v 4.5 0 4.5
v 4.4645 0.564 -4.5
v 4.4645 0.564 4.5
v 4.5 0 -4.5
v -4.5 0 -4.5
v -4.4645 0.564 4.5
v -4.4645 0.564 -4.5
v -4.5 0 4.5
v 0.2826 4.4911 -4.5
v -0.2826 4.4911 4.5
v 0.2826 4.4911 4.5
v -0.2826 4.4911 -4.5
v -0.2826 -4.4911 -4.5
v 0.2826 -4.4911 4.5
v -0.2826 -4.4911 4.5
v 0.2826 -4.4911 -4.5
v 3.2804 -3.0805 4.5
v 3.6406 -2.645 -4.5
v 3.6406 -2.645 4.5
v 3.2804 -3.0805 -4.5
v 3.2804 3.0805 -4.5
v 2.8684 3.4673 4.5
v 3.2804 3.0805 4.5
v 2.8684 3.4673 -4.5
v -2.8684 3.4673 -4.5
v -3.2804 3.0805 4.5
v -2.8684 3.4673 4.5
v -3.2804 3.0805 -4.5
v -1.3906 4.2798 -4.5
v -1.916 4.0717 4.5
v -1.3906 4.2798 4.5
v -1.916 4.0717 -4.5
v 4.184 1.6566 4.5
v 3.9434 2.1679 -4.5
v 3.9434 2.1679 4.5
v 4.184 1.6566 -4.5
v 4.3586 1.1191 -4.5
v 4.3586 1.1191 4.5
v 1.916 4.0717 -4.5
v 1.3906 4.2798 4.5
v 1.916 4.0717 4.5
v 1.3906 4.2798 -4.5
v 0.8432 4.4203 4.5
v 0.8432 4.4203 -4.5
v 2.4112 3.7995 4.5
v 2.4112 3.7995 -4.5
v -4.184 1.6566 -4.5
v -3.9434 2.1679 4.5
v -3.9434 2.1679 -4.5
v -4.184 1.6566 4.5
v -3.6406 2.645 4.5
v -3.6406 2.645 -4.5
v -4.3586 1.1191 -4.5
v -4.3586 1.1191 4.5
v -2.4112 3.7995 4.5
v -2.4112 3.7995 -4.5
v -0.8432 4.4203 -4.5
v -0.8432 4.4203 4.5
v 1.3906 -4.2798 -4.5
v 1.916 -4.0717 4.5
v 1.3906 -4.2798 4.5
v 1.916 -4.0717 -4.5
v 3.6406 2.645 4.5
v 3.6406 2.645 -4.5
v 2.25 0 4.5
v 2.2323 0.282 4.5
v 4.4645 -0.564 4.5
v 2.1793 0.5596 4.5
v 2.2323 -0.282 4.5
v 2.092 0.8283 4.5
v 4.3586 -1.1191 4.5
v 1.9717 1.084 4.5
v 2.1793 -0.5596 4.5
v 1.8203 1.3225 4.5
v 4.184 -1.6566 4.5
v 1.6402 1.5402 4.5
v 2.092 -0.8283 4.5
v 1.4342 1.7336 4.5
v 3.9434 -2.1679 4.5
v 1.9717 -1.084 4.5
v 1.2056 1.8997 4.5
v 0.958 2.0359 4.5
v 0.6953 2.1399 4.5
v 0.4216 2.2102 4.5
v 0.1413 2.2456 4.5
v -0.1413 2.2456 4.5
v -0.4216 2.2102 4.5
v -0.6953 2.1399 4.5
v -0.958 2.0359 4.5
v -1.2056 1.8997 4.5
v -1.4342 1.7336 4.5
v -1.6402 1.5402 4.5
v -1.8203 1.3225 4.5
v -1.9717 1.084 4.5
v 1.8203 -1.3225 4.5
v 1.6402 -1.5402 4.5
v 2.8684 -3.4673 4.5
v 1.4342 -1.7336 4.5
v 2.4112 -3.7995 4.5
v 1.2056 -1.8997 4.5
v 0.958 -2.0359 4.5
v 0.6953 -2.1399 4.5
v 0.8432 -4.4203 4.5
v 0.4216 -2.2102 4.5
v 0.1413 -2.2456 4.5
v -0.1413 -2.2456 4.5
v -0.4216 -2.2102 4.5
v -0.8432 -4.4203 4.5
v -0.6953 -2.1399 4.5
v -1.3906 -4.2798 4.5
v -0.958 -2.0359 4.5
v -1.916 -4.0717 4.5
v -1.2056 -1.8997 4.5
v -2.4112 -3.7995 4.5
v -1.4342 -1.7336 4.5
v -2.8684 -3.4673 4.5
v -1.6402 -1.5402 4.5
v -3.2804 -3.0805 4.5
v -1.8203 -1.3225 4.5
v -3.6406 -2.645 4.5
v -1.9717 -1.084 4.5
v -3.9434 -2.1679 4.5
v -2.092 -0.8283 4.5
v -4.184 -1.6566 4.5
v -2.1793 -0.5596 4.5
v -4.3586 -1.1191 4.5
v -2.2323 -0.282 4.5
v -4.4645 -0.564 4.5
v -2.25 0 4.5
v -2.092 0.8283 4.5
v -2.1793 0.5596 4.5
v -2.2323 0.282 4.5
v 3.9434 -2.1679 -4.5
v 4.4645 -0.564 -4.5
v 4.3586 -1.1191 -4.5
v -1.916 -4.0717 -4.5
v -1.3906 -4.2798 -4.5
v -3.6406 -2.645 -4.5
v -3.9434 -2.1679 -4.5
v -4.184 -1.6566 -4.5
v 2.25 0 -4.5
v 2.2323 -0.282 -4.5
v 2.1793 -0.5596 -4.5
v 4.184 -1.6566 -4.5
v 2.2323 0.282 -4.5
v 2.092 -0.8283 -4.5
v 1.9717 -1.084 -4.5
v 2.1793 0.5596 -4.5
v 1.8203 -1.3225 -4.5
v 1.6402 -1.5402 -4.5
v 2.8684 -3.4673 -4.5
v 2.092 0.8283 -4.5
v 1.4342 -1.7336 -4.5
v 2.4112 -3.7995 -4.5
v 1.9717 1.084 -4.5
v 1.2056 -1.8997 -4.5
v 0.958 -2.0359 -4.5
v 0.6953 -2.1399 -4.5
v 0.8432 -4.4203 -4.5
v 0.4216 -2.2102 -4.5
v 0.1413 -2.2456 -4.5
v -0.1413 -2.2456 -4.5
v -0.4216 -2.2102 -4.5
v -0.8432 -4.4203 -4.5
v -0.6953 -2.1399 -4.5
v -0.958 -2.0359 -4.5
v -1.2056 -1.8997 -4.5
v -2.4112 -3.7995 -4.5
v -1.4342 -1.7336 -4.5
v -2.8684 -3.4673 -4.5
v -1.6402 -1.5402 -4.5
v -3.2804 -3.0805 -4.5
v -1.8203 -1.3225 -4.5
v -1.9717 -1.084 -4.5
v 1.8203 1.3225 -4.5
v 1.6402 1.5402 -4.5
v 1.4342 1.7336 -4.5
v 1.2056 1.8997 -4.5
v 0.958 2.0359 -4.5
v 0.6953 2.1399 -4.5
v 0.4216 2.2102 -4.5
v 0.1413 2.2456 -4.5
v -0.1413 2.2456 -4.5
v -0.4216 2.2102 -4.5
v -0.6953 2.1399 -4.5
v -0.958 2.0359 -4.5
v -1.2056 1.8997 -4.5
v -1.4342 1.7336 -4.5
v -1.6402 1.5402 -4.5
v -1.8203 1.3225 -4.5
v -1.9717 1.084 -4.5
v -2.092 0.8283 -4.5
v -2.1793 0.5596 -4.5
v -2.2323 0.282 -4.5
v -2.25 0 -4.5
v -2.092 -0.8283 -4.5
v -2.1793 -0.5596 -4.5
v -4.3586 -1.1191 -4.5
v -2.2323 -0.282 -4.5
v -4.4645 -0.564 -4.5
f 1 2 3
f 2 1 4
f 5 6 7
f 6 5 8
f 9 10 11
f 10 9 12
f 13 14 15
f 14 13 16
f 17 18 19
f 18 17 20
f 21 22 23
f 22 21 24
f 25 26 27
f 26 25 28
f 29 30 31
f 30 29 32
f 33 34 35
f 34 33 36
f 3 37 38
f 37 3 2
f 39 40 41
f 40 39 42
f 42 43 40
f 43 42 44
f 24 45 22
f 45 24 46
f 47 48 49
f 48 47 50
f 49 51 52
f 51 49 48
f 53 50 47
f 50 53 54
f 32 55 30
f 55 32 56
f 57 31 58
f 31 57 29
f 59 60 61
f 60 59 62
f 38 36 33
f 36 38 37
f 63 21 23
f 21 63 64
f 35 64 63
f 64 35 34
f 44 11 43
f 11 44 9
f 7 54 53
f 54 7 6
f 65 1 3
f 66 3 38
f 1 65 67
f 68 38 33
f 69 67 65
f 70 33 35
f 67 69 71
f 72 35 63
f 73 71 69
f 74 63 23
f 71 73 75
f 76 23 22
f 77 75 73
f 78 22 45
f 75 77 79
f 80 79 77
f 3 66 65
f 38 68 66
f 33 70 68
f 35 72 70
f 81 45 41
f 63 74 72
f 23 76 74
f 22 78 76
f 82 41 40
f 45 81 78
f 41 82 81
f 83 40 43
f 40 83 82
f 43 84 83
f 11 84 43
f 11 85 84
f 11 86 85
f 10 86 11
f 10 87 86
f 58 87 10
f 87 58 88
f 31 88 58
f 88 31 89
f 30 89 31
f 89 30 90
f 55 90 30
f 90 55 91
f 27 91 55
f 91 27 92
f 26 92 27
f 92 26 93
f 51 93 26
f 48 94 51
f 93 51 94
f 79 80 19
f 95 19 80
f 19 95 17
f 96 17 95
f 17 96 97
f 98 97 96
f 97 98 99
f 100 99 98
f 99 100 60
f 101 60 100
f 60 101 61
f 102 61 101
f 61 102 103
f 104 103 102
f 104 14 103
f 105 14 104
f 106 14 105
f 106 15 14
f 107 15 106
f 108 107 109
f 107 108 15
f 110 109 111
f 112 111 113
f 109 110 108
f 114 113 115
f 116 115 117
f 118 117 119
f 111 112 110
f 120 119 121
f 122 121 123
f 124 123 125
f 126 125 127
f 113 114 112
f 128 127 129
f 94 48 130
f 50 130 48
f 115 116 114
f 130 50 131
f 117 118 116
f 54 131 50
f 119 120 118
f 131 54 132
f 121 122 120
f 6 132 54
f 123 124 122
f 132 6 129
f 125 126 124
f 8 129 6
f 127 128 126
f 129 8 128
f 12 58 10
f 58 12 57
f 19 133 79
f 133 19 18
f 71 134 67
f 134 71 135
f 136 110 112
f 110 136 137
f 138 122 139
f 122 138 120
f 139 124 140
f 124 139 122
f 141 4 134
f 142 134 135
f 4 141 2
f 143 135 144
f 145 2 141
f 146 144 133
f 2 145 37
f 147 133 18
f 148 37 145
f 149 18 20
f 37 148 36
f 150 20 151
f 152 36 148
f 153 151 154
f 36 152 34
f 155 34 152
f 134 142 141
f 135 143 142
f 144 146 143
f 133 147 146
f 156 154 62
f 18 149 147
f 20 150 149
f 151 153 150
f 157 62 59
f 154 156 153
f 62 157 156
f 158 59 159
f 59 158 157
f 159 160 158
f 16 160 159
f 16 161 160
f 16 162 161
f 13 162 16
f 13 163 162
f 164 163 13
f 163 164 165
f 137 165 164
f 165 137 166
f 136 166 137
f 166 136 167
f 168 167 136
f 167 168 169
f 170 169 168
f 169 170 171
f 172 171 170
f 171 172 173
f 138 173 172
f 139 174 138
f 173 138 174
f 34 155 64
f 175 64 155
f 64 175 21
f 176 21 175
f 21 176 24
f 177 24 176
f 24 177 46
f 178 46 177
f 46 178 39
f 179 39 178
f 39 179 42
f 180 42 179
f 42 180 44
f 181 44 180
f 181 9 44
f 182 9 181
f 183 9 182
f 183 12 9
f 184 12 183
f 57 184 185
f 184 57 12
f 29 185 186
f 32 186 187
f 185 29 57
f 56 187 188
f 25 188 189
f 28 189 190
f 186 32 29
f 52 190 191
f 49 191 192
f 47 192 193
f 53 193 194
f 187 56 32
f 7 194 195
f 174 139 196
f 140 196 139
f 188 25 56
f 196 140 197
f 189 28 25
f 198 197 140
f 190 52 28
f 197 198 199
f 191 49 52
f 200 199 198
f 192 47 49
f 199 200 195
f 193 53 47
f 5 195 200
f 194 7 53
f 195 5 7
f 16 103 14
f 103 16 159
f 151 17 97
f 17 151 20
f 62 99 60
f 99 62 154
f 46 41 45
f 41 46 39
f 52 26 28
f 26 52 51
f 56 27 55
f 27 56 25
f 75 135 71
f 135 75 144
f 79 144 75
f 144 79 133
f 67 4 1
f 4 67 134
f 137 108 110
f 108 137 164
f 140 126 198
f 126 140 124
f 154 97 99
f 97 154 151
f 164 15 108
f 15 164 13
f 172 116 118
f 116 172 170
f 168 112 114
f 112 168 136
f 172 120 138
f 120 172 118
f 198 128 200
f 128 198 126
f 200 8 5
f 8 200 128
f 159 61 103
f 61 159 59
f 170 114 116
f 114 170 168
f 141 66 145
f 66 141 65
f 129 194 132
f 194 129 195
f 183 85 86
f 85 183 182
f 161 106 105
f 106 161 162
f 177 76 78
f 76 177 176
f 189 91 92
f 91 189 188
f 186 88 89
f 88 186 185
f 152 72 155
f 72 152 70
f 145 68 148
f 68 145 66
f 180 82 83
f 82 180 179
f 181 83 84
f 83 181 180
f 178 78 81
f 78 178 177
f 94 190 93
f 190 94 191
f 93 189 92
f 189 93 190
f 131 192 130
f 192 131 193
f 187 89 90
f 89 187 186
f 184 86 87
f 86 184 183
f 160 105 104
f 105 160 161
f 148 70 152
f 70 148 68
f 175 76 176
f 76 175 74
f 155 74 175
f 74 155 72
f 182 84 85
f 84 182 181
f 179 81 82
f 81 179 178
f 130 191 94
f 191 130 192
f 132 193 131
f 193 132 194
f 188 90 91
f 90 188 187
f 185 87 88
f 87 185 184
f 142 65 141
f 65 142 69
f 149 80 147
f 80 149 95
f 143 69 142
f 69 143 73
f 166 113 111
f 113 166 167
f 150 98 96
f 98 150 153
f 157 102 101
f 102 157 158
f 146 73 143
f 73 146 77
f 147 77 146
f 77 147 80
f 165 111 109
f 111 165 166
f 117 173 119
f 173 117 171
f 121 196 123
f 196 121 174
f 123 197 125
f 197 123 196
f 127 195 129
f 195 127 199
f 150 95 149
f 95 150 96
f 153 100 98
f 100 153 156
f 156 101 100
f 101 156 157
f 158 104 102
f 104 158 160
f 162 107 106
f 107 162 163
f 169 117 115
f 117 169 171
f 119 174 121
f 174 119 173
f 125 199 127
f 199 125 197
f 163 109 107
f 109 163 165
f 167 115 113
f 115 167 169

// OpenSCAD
$fn = 50;


difference() {
	union() {
		translate(v = [0, 0, -4.5000000000]) {
			cylinder(h = 9, r = 4.5000000000);
		}
	}
	union() {
		translate(v = [0, 0, -100.0000000000]) {
			cylinder(h = 200, r = 2.2500000000);
		}
	}
}
